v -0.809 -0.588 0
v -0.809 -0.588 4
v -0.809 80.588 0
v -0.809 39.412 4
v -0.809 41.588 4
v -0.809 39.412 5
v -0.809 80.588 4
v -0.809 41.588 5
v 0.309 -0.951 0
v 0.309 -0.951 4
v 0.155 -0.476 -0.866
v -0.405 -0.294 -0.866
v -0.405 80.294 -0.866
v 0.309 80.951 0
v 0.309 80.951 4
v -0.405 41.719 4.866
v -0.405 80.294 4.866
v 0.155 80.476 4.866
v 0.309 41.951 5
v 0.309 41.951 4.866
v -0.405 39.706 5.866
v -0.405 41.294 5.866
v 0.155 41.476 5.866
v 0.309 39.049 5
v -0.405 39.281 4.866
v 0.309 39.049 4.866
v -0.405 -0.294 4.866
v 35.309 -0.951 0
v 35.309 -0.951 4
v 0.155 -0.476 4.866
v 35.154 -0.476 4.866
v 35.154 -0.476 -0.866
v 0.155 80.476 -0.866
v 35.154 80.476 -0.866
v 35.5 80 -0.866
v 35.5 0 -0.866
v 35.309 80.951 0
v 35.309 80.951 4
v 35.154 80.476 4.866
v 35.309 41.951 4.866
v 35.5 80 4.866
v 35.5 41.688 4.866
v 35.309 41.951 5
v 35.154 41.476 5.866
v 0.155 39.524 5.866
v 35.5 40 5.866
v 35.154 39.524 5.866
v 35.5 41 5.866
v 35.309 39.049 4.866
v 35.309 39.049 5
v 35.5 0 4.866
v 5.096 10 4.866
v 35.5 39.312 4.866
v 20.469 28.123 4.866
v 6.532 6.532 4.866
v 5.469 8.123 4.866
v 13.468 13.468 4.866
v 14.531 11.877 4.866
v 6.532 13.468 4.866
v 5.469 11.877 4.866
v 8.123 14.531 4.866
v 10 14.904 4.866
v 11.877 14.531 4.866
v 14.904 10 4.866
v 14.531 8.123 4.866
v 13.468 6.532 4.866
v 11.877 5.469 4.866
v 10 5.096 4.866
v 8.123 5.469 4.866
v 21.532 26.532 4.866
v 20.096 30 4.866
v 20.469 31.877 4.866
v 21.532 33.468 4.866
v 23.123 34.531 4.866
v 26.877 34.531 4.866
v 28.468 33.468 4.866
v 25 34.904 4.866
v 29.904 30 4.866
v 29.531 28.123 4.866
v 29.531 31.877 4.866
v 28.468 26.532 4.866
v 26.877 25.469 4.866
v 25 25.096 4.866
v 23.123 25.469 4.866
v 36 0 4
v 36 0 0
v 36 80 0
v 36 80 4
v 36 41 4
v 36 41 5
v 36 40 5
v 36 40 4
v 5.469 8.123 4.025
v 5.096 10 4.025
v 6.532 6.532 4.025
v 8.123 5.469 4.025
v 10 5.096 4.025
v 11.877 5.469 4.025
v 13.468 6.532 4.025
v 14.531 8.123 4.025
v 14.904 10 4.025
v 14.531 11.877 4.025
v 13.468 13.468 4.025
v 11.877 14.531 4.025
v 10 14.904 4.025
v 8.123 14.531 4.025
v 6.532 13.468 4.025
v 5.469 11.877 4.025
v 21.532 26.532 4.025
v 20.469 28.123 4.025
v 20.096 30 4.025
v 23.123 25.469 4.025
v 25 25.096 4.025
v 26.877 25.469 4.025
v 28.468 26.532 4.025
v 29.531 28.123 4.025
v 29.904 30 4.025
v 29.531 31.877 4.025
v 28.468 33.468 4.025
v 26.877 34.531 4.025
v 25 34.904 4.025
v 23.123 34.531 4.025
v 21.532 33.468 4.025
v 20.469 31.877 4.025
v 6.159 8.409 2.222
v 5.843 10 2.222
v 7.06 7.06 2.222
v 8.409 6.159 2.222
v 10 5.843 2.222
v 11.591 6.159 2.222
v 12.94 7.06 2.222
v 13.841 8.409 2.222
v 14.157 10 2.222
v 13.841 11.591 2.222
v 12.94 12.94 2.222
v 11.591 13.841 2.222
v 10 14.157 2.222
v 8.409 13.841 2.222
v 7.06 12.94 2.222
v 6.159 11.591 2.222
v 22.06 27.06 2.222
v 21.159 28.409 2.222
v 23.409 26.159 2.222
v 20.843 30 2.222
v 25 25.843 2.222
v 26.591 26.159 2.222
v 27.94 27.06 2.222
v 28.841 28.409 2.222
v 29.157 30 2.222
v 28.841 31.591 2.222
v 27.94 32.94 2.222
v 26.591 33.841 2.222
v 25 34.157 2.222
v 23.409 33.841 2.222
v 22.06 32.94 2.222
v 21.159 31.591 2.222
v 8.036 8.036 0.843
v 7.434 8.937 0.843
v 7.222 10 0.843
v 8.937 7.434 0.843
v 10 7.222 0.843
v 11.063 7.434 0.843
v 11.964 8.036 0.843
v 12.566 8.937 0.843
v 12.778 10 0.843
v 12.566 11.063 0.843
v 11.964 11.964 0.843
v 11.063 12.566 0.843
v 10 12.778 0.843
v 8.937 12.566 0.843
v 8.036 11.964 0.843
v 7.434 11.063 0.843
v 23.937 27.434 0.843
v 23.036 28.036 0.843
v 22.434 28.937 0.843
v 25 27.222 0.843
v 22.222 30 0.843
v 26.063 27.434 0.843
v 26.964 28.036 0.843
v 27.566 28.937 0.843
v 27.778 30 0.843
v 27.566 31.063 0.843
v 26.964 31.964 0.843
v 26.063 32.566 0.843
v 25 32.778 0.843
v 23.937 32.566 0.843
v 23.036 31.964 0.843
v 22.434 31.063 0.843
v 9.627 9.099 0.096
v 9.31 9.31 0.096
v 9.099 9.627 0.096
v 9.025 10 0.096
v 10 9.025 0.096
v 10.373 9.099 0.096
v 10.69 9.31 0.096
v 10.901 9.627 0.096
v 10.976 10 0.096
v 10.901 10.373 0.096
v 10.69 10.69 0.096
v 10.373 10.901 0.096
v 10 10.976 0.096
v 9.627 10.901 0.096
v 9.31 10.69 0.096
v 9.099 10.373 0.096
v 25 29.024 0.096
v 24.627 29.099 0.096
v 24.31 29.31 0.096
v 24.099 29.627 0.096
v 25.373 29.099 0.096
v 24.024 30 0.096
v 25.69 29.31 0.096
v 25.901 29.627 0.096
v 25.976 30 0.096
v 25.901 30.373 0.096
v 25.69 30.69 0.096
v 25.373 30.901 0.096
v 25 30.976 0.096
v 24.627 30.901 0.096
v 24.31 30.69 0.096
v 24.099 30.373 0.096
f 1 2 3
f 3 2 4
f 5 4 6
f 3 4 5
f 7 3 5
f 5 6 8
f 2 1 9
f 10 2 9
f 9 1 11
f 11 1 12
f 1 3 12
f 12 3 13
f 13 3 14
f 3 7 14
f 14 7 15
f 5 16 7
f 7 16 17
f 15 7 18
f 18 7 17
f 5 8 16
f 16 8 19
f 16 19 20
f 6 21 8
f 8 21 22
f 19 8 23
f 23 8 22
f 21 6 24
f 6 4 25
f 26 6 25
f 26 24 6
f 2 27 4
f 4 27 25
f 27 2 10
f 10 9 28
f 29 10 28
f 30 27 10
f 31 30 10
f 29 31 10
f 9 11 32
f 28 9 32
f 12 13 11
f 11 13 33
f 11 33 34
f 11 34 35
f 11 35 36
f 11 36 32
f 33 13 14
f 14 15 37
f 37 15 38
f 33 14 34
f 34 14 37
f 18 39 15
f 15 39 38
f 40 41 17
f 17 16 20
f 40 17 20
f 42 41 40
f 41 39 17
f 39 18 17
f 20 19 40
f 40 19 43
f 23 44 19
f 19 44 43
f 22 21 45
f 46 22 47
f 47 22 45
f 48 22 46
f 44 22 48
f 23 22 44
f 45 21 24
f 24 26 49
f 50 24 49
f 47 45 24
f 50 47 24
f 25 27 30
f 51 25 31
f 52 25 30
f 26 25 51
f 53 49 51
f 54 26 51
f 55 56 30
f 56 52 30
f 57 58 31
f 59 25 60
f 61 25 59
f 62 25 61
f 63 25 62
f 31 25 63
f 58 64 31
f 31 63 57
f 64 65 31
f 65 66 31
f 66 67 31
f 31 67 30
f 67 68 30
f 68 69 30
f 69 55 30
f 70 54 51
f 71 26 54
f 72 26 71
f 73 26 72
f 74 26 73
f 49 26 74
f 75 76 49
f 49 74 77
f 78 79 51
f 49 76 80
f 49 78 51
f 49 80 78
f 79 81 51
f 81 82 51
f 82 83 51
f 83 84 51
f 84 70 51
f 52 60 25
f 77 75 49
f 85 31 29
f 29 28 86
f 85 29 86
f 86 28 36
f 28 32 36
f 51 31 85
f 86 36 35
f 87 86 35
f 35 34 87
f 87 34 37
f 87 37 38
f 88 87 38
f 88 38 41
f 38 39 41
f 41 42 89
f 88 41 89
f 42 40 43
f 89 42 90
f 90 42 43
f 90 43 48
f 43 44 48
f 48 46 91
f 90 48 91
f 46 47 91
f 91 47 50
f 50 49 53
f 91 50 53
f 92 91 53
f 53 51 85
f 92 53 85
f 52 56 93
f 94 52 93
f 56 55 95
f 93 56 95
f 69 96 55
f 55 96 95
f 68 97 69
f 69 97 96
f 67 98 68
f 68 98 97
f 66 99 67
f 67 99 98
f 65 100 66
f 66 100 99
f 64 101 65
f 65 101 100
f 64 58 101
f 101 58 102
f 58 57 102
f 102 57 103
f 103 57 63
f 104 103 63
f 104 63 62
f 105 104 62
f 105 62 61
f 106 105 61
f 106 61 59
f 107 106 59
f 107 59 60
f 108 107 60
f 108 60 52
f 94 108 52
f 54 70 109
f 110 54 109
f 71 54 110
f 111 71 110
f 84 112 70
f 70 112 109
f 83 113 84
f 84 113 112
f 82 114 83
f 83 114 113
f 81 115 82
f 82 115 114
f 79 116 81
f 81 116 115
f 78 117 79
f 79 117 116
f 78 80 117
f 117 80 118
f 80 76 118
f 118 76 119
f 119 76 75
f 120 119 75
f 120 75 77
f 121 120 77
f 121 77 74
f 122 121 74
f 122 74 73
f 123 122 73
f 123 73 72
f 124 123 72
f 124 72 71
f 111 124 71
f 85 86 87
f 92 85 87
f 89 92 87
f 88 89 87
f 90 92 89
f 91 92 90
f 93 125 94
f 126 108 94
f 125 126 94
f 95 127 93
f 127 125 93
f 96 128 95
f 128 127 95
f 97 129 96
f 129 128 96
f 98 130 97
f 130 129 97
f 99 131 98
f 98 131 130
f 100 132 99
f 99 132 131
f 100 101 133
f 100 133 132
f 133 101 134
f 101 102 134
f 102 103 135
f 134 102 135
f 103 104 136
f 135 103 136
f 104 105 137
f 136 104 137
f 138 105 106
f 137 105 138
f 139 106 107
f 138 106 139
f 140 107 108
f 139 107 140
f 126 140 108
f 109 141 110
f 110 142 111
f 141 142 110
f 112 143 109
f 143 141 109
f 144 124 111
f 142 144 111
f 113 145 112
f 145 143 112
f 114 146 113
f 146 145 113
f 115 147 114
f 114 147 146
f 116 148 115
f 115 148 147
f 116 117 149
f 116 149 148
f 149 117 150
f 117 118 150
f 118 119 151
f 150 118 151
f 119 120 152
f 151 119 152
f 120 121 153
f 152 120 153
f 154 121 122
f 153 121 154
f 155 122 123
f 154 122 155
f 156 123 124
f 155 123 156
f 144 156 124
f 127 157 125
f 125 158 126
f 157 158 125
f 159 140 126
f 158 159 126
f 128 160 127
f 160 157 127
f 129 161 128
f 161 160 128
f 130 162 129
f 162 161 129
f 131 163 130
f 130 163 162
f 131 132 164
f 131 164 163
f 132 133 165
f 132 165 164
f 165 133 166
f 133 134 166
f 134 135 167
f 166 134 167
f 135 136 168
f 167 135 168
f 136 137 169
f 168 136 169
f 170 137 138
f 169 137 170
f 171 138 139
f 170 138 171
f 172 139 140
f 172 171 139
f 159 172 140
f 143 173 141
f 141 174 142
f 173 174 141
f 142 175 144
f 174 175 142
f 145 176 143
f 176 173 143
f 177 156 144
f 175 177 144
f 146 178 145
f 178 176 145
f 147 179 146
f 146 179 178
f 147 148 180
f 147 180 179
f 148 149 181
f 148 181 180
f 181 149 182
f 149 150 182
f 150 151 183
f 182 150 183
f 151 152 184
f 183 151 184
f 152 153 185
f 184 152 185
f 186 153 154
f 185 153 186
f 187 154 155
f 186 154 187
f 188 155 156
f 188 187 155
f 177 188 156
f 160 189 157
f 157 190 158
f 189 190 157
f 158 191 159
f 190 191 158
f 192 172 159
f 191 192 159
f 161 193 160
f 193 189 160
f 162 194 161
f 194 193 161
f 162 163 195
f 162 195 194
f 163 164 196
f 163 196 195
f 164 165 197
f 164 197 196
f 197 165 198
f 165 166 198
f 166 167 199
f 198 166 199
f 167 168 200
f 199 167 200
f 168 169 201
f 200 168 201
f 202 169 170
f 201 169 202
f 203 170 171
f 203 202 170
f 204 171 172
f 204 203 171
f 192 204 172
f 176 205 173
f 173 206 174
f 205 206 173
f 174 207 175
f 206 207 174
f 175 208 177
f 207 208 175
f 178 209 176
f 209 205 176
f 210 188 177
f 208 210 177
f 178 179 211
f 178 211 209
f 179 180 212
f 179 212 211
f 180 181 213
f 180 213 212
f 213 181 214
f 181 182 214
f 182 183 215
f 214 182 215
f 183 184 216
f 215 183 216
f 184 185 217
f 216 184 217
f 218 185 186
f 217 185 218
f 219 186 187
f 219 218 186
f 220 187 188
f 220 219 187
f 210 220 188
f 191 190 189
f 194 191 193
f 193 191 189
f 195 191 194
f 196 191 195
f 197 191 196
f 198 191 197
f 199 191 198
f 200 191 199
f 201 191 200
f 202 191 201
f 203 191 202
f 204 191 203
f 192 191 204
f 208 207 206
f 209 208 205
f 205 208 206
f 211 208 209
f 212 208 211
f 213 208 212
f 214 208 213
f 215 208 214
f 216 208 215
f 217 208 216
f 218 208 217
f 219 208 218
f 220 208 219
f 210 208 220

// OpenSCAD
// Loguncov Maxim 13.12.13


//$fn=128;


translate([0,40,0])
minkowski()
{cube([35,1,5]);
sphere(1);
}

difference() {

//основа
minkowski()
{cube([35,80,4]);
sphere(1);
}
//отверстия
translate([10,10,5])sphere(5);
translate([25,30,5])sphere(5);




}
